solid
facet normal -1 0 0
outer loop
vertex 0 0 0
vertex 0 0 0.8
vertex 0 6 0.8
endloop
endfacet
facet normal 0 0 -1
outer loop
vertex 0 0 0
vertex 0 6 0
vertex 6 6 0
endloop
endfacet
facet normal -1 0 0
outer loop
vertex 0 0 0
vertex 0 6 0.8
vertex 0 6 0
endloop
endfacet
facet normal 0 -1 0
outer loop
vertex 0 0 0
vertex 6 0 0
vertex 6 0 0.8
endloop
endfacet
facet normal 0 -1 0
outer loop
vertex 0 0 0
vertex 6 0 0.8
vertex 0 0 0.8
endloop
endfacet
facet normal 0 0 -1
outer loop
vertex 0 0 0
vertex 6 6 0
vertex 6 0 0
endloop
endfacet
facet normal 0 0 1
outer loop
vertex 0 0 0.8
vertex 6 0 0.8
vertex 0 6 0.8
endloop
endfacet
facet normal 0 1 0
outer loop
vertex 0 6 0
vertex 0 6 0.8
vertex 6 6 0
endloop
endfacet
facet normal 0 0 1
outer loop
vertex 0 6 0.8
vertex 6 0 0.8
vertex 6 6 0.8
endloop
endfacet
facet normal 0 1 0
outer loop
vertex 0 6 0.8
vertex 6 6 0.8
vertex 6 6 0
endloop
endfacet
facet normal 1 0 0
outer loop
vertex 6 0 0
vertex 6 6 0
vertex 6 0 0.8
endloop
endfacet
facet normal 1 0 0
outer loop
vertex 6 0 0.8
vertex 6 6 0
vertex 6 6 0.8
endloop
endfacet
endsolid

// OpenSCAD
/* Warning, this is a very basic generator with a lot of approximation 
input data : [WFBGA, 2GW, 6x6x0.8mm, 68, , A, C04-00542A]
generated by com.zoubworld.electronics.cad.model3d.Basic
Date : Sun Feb 15 10:50:48 CET 2026
*/

//body
color("black")
translate([0,0,0])
cube([6.0,6.0,0.8], center=false);
